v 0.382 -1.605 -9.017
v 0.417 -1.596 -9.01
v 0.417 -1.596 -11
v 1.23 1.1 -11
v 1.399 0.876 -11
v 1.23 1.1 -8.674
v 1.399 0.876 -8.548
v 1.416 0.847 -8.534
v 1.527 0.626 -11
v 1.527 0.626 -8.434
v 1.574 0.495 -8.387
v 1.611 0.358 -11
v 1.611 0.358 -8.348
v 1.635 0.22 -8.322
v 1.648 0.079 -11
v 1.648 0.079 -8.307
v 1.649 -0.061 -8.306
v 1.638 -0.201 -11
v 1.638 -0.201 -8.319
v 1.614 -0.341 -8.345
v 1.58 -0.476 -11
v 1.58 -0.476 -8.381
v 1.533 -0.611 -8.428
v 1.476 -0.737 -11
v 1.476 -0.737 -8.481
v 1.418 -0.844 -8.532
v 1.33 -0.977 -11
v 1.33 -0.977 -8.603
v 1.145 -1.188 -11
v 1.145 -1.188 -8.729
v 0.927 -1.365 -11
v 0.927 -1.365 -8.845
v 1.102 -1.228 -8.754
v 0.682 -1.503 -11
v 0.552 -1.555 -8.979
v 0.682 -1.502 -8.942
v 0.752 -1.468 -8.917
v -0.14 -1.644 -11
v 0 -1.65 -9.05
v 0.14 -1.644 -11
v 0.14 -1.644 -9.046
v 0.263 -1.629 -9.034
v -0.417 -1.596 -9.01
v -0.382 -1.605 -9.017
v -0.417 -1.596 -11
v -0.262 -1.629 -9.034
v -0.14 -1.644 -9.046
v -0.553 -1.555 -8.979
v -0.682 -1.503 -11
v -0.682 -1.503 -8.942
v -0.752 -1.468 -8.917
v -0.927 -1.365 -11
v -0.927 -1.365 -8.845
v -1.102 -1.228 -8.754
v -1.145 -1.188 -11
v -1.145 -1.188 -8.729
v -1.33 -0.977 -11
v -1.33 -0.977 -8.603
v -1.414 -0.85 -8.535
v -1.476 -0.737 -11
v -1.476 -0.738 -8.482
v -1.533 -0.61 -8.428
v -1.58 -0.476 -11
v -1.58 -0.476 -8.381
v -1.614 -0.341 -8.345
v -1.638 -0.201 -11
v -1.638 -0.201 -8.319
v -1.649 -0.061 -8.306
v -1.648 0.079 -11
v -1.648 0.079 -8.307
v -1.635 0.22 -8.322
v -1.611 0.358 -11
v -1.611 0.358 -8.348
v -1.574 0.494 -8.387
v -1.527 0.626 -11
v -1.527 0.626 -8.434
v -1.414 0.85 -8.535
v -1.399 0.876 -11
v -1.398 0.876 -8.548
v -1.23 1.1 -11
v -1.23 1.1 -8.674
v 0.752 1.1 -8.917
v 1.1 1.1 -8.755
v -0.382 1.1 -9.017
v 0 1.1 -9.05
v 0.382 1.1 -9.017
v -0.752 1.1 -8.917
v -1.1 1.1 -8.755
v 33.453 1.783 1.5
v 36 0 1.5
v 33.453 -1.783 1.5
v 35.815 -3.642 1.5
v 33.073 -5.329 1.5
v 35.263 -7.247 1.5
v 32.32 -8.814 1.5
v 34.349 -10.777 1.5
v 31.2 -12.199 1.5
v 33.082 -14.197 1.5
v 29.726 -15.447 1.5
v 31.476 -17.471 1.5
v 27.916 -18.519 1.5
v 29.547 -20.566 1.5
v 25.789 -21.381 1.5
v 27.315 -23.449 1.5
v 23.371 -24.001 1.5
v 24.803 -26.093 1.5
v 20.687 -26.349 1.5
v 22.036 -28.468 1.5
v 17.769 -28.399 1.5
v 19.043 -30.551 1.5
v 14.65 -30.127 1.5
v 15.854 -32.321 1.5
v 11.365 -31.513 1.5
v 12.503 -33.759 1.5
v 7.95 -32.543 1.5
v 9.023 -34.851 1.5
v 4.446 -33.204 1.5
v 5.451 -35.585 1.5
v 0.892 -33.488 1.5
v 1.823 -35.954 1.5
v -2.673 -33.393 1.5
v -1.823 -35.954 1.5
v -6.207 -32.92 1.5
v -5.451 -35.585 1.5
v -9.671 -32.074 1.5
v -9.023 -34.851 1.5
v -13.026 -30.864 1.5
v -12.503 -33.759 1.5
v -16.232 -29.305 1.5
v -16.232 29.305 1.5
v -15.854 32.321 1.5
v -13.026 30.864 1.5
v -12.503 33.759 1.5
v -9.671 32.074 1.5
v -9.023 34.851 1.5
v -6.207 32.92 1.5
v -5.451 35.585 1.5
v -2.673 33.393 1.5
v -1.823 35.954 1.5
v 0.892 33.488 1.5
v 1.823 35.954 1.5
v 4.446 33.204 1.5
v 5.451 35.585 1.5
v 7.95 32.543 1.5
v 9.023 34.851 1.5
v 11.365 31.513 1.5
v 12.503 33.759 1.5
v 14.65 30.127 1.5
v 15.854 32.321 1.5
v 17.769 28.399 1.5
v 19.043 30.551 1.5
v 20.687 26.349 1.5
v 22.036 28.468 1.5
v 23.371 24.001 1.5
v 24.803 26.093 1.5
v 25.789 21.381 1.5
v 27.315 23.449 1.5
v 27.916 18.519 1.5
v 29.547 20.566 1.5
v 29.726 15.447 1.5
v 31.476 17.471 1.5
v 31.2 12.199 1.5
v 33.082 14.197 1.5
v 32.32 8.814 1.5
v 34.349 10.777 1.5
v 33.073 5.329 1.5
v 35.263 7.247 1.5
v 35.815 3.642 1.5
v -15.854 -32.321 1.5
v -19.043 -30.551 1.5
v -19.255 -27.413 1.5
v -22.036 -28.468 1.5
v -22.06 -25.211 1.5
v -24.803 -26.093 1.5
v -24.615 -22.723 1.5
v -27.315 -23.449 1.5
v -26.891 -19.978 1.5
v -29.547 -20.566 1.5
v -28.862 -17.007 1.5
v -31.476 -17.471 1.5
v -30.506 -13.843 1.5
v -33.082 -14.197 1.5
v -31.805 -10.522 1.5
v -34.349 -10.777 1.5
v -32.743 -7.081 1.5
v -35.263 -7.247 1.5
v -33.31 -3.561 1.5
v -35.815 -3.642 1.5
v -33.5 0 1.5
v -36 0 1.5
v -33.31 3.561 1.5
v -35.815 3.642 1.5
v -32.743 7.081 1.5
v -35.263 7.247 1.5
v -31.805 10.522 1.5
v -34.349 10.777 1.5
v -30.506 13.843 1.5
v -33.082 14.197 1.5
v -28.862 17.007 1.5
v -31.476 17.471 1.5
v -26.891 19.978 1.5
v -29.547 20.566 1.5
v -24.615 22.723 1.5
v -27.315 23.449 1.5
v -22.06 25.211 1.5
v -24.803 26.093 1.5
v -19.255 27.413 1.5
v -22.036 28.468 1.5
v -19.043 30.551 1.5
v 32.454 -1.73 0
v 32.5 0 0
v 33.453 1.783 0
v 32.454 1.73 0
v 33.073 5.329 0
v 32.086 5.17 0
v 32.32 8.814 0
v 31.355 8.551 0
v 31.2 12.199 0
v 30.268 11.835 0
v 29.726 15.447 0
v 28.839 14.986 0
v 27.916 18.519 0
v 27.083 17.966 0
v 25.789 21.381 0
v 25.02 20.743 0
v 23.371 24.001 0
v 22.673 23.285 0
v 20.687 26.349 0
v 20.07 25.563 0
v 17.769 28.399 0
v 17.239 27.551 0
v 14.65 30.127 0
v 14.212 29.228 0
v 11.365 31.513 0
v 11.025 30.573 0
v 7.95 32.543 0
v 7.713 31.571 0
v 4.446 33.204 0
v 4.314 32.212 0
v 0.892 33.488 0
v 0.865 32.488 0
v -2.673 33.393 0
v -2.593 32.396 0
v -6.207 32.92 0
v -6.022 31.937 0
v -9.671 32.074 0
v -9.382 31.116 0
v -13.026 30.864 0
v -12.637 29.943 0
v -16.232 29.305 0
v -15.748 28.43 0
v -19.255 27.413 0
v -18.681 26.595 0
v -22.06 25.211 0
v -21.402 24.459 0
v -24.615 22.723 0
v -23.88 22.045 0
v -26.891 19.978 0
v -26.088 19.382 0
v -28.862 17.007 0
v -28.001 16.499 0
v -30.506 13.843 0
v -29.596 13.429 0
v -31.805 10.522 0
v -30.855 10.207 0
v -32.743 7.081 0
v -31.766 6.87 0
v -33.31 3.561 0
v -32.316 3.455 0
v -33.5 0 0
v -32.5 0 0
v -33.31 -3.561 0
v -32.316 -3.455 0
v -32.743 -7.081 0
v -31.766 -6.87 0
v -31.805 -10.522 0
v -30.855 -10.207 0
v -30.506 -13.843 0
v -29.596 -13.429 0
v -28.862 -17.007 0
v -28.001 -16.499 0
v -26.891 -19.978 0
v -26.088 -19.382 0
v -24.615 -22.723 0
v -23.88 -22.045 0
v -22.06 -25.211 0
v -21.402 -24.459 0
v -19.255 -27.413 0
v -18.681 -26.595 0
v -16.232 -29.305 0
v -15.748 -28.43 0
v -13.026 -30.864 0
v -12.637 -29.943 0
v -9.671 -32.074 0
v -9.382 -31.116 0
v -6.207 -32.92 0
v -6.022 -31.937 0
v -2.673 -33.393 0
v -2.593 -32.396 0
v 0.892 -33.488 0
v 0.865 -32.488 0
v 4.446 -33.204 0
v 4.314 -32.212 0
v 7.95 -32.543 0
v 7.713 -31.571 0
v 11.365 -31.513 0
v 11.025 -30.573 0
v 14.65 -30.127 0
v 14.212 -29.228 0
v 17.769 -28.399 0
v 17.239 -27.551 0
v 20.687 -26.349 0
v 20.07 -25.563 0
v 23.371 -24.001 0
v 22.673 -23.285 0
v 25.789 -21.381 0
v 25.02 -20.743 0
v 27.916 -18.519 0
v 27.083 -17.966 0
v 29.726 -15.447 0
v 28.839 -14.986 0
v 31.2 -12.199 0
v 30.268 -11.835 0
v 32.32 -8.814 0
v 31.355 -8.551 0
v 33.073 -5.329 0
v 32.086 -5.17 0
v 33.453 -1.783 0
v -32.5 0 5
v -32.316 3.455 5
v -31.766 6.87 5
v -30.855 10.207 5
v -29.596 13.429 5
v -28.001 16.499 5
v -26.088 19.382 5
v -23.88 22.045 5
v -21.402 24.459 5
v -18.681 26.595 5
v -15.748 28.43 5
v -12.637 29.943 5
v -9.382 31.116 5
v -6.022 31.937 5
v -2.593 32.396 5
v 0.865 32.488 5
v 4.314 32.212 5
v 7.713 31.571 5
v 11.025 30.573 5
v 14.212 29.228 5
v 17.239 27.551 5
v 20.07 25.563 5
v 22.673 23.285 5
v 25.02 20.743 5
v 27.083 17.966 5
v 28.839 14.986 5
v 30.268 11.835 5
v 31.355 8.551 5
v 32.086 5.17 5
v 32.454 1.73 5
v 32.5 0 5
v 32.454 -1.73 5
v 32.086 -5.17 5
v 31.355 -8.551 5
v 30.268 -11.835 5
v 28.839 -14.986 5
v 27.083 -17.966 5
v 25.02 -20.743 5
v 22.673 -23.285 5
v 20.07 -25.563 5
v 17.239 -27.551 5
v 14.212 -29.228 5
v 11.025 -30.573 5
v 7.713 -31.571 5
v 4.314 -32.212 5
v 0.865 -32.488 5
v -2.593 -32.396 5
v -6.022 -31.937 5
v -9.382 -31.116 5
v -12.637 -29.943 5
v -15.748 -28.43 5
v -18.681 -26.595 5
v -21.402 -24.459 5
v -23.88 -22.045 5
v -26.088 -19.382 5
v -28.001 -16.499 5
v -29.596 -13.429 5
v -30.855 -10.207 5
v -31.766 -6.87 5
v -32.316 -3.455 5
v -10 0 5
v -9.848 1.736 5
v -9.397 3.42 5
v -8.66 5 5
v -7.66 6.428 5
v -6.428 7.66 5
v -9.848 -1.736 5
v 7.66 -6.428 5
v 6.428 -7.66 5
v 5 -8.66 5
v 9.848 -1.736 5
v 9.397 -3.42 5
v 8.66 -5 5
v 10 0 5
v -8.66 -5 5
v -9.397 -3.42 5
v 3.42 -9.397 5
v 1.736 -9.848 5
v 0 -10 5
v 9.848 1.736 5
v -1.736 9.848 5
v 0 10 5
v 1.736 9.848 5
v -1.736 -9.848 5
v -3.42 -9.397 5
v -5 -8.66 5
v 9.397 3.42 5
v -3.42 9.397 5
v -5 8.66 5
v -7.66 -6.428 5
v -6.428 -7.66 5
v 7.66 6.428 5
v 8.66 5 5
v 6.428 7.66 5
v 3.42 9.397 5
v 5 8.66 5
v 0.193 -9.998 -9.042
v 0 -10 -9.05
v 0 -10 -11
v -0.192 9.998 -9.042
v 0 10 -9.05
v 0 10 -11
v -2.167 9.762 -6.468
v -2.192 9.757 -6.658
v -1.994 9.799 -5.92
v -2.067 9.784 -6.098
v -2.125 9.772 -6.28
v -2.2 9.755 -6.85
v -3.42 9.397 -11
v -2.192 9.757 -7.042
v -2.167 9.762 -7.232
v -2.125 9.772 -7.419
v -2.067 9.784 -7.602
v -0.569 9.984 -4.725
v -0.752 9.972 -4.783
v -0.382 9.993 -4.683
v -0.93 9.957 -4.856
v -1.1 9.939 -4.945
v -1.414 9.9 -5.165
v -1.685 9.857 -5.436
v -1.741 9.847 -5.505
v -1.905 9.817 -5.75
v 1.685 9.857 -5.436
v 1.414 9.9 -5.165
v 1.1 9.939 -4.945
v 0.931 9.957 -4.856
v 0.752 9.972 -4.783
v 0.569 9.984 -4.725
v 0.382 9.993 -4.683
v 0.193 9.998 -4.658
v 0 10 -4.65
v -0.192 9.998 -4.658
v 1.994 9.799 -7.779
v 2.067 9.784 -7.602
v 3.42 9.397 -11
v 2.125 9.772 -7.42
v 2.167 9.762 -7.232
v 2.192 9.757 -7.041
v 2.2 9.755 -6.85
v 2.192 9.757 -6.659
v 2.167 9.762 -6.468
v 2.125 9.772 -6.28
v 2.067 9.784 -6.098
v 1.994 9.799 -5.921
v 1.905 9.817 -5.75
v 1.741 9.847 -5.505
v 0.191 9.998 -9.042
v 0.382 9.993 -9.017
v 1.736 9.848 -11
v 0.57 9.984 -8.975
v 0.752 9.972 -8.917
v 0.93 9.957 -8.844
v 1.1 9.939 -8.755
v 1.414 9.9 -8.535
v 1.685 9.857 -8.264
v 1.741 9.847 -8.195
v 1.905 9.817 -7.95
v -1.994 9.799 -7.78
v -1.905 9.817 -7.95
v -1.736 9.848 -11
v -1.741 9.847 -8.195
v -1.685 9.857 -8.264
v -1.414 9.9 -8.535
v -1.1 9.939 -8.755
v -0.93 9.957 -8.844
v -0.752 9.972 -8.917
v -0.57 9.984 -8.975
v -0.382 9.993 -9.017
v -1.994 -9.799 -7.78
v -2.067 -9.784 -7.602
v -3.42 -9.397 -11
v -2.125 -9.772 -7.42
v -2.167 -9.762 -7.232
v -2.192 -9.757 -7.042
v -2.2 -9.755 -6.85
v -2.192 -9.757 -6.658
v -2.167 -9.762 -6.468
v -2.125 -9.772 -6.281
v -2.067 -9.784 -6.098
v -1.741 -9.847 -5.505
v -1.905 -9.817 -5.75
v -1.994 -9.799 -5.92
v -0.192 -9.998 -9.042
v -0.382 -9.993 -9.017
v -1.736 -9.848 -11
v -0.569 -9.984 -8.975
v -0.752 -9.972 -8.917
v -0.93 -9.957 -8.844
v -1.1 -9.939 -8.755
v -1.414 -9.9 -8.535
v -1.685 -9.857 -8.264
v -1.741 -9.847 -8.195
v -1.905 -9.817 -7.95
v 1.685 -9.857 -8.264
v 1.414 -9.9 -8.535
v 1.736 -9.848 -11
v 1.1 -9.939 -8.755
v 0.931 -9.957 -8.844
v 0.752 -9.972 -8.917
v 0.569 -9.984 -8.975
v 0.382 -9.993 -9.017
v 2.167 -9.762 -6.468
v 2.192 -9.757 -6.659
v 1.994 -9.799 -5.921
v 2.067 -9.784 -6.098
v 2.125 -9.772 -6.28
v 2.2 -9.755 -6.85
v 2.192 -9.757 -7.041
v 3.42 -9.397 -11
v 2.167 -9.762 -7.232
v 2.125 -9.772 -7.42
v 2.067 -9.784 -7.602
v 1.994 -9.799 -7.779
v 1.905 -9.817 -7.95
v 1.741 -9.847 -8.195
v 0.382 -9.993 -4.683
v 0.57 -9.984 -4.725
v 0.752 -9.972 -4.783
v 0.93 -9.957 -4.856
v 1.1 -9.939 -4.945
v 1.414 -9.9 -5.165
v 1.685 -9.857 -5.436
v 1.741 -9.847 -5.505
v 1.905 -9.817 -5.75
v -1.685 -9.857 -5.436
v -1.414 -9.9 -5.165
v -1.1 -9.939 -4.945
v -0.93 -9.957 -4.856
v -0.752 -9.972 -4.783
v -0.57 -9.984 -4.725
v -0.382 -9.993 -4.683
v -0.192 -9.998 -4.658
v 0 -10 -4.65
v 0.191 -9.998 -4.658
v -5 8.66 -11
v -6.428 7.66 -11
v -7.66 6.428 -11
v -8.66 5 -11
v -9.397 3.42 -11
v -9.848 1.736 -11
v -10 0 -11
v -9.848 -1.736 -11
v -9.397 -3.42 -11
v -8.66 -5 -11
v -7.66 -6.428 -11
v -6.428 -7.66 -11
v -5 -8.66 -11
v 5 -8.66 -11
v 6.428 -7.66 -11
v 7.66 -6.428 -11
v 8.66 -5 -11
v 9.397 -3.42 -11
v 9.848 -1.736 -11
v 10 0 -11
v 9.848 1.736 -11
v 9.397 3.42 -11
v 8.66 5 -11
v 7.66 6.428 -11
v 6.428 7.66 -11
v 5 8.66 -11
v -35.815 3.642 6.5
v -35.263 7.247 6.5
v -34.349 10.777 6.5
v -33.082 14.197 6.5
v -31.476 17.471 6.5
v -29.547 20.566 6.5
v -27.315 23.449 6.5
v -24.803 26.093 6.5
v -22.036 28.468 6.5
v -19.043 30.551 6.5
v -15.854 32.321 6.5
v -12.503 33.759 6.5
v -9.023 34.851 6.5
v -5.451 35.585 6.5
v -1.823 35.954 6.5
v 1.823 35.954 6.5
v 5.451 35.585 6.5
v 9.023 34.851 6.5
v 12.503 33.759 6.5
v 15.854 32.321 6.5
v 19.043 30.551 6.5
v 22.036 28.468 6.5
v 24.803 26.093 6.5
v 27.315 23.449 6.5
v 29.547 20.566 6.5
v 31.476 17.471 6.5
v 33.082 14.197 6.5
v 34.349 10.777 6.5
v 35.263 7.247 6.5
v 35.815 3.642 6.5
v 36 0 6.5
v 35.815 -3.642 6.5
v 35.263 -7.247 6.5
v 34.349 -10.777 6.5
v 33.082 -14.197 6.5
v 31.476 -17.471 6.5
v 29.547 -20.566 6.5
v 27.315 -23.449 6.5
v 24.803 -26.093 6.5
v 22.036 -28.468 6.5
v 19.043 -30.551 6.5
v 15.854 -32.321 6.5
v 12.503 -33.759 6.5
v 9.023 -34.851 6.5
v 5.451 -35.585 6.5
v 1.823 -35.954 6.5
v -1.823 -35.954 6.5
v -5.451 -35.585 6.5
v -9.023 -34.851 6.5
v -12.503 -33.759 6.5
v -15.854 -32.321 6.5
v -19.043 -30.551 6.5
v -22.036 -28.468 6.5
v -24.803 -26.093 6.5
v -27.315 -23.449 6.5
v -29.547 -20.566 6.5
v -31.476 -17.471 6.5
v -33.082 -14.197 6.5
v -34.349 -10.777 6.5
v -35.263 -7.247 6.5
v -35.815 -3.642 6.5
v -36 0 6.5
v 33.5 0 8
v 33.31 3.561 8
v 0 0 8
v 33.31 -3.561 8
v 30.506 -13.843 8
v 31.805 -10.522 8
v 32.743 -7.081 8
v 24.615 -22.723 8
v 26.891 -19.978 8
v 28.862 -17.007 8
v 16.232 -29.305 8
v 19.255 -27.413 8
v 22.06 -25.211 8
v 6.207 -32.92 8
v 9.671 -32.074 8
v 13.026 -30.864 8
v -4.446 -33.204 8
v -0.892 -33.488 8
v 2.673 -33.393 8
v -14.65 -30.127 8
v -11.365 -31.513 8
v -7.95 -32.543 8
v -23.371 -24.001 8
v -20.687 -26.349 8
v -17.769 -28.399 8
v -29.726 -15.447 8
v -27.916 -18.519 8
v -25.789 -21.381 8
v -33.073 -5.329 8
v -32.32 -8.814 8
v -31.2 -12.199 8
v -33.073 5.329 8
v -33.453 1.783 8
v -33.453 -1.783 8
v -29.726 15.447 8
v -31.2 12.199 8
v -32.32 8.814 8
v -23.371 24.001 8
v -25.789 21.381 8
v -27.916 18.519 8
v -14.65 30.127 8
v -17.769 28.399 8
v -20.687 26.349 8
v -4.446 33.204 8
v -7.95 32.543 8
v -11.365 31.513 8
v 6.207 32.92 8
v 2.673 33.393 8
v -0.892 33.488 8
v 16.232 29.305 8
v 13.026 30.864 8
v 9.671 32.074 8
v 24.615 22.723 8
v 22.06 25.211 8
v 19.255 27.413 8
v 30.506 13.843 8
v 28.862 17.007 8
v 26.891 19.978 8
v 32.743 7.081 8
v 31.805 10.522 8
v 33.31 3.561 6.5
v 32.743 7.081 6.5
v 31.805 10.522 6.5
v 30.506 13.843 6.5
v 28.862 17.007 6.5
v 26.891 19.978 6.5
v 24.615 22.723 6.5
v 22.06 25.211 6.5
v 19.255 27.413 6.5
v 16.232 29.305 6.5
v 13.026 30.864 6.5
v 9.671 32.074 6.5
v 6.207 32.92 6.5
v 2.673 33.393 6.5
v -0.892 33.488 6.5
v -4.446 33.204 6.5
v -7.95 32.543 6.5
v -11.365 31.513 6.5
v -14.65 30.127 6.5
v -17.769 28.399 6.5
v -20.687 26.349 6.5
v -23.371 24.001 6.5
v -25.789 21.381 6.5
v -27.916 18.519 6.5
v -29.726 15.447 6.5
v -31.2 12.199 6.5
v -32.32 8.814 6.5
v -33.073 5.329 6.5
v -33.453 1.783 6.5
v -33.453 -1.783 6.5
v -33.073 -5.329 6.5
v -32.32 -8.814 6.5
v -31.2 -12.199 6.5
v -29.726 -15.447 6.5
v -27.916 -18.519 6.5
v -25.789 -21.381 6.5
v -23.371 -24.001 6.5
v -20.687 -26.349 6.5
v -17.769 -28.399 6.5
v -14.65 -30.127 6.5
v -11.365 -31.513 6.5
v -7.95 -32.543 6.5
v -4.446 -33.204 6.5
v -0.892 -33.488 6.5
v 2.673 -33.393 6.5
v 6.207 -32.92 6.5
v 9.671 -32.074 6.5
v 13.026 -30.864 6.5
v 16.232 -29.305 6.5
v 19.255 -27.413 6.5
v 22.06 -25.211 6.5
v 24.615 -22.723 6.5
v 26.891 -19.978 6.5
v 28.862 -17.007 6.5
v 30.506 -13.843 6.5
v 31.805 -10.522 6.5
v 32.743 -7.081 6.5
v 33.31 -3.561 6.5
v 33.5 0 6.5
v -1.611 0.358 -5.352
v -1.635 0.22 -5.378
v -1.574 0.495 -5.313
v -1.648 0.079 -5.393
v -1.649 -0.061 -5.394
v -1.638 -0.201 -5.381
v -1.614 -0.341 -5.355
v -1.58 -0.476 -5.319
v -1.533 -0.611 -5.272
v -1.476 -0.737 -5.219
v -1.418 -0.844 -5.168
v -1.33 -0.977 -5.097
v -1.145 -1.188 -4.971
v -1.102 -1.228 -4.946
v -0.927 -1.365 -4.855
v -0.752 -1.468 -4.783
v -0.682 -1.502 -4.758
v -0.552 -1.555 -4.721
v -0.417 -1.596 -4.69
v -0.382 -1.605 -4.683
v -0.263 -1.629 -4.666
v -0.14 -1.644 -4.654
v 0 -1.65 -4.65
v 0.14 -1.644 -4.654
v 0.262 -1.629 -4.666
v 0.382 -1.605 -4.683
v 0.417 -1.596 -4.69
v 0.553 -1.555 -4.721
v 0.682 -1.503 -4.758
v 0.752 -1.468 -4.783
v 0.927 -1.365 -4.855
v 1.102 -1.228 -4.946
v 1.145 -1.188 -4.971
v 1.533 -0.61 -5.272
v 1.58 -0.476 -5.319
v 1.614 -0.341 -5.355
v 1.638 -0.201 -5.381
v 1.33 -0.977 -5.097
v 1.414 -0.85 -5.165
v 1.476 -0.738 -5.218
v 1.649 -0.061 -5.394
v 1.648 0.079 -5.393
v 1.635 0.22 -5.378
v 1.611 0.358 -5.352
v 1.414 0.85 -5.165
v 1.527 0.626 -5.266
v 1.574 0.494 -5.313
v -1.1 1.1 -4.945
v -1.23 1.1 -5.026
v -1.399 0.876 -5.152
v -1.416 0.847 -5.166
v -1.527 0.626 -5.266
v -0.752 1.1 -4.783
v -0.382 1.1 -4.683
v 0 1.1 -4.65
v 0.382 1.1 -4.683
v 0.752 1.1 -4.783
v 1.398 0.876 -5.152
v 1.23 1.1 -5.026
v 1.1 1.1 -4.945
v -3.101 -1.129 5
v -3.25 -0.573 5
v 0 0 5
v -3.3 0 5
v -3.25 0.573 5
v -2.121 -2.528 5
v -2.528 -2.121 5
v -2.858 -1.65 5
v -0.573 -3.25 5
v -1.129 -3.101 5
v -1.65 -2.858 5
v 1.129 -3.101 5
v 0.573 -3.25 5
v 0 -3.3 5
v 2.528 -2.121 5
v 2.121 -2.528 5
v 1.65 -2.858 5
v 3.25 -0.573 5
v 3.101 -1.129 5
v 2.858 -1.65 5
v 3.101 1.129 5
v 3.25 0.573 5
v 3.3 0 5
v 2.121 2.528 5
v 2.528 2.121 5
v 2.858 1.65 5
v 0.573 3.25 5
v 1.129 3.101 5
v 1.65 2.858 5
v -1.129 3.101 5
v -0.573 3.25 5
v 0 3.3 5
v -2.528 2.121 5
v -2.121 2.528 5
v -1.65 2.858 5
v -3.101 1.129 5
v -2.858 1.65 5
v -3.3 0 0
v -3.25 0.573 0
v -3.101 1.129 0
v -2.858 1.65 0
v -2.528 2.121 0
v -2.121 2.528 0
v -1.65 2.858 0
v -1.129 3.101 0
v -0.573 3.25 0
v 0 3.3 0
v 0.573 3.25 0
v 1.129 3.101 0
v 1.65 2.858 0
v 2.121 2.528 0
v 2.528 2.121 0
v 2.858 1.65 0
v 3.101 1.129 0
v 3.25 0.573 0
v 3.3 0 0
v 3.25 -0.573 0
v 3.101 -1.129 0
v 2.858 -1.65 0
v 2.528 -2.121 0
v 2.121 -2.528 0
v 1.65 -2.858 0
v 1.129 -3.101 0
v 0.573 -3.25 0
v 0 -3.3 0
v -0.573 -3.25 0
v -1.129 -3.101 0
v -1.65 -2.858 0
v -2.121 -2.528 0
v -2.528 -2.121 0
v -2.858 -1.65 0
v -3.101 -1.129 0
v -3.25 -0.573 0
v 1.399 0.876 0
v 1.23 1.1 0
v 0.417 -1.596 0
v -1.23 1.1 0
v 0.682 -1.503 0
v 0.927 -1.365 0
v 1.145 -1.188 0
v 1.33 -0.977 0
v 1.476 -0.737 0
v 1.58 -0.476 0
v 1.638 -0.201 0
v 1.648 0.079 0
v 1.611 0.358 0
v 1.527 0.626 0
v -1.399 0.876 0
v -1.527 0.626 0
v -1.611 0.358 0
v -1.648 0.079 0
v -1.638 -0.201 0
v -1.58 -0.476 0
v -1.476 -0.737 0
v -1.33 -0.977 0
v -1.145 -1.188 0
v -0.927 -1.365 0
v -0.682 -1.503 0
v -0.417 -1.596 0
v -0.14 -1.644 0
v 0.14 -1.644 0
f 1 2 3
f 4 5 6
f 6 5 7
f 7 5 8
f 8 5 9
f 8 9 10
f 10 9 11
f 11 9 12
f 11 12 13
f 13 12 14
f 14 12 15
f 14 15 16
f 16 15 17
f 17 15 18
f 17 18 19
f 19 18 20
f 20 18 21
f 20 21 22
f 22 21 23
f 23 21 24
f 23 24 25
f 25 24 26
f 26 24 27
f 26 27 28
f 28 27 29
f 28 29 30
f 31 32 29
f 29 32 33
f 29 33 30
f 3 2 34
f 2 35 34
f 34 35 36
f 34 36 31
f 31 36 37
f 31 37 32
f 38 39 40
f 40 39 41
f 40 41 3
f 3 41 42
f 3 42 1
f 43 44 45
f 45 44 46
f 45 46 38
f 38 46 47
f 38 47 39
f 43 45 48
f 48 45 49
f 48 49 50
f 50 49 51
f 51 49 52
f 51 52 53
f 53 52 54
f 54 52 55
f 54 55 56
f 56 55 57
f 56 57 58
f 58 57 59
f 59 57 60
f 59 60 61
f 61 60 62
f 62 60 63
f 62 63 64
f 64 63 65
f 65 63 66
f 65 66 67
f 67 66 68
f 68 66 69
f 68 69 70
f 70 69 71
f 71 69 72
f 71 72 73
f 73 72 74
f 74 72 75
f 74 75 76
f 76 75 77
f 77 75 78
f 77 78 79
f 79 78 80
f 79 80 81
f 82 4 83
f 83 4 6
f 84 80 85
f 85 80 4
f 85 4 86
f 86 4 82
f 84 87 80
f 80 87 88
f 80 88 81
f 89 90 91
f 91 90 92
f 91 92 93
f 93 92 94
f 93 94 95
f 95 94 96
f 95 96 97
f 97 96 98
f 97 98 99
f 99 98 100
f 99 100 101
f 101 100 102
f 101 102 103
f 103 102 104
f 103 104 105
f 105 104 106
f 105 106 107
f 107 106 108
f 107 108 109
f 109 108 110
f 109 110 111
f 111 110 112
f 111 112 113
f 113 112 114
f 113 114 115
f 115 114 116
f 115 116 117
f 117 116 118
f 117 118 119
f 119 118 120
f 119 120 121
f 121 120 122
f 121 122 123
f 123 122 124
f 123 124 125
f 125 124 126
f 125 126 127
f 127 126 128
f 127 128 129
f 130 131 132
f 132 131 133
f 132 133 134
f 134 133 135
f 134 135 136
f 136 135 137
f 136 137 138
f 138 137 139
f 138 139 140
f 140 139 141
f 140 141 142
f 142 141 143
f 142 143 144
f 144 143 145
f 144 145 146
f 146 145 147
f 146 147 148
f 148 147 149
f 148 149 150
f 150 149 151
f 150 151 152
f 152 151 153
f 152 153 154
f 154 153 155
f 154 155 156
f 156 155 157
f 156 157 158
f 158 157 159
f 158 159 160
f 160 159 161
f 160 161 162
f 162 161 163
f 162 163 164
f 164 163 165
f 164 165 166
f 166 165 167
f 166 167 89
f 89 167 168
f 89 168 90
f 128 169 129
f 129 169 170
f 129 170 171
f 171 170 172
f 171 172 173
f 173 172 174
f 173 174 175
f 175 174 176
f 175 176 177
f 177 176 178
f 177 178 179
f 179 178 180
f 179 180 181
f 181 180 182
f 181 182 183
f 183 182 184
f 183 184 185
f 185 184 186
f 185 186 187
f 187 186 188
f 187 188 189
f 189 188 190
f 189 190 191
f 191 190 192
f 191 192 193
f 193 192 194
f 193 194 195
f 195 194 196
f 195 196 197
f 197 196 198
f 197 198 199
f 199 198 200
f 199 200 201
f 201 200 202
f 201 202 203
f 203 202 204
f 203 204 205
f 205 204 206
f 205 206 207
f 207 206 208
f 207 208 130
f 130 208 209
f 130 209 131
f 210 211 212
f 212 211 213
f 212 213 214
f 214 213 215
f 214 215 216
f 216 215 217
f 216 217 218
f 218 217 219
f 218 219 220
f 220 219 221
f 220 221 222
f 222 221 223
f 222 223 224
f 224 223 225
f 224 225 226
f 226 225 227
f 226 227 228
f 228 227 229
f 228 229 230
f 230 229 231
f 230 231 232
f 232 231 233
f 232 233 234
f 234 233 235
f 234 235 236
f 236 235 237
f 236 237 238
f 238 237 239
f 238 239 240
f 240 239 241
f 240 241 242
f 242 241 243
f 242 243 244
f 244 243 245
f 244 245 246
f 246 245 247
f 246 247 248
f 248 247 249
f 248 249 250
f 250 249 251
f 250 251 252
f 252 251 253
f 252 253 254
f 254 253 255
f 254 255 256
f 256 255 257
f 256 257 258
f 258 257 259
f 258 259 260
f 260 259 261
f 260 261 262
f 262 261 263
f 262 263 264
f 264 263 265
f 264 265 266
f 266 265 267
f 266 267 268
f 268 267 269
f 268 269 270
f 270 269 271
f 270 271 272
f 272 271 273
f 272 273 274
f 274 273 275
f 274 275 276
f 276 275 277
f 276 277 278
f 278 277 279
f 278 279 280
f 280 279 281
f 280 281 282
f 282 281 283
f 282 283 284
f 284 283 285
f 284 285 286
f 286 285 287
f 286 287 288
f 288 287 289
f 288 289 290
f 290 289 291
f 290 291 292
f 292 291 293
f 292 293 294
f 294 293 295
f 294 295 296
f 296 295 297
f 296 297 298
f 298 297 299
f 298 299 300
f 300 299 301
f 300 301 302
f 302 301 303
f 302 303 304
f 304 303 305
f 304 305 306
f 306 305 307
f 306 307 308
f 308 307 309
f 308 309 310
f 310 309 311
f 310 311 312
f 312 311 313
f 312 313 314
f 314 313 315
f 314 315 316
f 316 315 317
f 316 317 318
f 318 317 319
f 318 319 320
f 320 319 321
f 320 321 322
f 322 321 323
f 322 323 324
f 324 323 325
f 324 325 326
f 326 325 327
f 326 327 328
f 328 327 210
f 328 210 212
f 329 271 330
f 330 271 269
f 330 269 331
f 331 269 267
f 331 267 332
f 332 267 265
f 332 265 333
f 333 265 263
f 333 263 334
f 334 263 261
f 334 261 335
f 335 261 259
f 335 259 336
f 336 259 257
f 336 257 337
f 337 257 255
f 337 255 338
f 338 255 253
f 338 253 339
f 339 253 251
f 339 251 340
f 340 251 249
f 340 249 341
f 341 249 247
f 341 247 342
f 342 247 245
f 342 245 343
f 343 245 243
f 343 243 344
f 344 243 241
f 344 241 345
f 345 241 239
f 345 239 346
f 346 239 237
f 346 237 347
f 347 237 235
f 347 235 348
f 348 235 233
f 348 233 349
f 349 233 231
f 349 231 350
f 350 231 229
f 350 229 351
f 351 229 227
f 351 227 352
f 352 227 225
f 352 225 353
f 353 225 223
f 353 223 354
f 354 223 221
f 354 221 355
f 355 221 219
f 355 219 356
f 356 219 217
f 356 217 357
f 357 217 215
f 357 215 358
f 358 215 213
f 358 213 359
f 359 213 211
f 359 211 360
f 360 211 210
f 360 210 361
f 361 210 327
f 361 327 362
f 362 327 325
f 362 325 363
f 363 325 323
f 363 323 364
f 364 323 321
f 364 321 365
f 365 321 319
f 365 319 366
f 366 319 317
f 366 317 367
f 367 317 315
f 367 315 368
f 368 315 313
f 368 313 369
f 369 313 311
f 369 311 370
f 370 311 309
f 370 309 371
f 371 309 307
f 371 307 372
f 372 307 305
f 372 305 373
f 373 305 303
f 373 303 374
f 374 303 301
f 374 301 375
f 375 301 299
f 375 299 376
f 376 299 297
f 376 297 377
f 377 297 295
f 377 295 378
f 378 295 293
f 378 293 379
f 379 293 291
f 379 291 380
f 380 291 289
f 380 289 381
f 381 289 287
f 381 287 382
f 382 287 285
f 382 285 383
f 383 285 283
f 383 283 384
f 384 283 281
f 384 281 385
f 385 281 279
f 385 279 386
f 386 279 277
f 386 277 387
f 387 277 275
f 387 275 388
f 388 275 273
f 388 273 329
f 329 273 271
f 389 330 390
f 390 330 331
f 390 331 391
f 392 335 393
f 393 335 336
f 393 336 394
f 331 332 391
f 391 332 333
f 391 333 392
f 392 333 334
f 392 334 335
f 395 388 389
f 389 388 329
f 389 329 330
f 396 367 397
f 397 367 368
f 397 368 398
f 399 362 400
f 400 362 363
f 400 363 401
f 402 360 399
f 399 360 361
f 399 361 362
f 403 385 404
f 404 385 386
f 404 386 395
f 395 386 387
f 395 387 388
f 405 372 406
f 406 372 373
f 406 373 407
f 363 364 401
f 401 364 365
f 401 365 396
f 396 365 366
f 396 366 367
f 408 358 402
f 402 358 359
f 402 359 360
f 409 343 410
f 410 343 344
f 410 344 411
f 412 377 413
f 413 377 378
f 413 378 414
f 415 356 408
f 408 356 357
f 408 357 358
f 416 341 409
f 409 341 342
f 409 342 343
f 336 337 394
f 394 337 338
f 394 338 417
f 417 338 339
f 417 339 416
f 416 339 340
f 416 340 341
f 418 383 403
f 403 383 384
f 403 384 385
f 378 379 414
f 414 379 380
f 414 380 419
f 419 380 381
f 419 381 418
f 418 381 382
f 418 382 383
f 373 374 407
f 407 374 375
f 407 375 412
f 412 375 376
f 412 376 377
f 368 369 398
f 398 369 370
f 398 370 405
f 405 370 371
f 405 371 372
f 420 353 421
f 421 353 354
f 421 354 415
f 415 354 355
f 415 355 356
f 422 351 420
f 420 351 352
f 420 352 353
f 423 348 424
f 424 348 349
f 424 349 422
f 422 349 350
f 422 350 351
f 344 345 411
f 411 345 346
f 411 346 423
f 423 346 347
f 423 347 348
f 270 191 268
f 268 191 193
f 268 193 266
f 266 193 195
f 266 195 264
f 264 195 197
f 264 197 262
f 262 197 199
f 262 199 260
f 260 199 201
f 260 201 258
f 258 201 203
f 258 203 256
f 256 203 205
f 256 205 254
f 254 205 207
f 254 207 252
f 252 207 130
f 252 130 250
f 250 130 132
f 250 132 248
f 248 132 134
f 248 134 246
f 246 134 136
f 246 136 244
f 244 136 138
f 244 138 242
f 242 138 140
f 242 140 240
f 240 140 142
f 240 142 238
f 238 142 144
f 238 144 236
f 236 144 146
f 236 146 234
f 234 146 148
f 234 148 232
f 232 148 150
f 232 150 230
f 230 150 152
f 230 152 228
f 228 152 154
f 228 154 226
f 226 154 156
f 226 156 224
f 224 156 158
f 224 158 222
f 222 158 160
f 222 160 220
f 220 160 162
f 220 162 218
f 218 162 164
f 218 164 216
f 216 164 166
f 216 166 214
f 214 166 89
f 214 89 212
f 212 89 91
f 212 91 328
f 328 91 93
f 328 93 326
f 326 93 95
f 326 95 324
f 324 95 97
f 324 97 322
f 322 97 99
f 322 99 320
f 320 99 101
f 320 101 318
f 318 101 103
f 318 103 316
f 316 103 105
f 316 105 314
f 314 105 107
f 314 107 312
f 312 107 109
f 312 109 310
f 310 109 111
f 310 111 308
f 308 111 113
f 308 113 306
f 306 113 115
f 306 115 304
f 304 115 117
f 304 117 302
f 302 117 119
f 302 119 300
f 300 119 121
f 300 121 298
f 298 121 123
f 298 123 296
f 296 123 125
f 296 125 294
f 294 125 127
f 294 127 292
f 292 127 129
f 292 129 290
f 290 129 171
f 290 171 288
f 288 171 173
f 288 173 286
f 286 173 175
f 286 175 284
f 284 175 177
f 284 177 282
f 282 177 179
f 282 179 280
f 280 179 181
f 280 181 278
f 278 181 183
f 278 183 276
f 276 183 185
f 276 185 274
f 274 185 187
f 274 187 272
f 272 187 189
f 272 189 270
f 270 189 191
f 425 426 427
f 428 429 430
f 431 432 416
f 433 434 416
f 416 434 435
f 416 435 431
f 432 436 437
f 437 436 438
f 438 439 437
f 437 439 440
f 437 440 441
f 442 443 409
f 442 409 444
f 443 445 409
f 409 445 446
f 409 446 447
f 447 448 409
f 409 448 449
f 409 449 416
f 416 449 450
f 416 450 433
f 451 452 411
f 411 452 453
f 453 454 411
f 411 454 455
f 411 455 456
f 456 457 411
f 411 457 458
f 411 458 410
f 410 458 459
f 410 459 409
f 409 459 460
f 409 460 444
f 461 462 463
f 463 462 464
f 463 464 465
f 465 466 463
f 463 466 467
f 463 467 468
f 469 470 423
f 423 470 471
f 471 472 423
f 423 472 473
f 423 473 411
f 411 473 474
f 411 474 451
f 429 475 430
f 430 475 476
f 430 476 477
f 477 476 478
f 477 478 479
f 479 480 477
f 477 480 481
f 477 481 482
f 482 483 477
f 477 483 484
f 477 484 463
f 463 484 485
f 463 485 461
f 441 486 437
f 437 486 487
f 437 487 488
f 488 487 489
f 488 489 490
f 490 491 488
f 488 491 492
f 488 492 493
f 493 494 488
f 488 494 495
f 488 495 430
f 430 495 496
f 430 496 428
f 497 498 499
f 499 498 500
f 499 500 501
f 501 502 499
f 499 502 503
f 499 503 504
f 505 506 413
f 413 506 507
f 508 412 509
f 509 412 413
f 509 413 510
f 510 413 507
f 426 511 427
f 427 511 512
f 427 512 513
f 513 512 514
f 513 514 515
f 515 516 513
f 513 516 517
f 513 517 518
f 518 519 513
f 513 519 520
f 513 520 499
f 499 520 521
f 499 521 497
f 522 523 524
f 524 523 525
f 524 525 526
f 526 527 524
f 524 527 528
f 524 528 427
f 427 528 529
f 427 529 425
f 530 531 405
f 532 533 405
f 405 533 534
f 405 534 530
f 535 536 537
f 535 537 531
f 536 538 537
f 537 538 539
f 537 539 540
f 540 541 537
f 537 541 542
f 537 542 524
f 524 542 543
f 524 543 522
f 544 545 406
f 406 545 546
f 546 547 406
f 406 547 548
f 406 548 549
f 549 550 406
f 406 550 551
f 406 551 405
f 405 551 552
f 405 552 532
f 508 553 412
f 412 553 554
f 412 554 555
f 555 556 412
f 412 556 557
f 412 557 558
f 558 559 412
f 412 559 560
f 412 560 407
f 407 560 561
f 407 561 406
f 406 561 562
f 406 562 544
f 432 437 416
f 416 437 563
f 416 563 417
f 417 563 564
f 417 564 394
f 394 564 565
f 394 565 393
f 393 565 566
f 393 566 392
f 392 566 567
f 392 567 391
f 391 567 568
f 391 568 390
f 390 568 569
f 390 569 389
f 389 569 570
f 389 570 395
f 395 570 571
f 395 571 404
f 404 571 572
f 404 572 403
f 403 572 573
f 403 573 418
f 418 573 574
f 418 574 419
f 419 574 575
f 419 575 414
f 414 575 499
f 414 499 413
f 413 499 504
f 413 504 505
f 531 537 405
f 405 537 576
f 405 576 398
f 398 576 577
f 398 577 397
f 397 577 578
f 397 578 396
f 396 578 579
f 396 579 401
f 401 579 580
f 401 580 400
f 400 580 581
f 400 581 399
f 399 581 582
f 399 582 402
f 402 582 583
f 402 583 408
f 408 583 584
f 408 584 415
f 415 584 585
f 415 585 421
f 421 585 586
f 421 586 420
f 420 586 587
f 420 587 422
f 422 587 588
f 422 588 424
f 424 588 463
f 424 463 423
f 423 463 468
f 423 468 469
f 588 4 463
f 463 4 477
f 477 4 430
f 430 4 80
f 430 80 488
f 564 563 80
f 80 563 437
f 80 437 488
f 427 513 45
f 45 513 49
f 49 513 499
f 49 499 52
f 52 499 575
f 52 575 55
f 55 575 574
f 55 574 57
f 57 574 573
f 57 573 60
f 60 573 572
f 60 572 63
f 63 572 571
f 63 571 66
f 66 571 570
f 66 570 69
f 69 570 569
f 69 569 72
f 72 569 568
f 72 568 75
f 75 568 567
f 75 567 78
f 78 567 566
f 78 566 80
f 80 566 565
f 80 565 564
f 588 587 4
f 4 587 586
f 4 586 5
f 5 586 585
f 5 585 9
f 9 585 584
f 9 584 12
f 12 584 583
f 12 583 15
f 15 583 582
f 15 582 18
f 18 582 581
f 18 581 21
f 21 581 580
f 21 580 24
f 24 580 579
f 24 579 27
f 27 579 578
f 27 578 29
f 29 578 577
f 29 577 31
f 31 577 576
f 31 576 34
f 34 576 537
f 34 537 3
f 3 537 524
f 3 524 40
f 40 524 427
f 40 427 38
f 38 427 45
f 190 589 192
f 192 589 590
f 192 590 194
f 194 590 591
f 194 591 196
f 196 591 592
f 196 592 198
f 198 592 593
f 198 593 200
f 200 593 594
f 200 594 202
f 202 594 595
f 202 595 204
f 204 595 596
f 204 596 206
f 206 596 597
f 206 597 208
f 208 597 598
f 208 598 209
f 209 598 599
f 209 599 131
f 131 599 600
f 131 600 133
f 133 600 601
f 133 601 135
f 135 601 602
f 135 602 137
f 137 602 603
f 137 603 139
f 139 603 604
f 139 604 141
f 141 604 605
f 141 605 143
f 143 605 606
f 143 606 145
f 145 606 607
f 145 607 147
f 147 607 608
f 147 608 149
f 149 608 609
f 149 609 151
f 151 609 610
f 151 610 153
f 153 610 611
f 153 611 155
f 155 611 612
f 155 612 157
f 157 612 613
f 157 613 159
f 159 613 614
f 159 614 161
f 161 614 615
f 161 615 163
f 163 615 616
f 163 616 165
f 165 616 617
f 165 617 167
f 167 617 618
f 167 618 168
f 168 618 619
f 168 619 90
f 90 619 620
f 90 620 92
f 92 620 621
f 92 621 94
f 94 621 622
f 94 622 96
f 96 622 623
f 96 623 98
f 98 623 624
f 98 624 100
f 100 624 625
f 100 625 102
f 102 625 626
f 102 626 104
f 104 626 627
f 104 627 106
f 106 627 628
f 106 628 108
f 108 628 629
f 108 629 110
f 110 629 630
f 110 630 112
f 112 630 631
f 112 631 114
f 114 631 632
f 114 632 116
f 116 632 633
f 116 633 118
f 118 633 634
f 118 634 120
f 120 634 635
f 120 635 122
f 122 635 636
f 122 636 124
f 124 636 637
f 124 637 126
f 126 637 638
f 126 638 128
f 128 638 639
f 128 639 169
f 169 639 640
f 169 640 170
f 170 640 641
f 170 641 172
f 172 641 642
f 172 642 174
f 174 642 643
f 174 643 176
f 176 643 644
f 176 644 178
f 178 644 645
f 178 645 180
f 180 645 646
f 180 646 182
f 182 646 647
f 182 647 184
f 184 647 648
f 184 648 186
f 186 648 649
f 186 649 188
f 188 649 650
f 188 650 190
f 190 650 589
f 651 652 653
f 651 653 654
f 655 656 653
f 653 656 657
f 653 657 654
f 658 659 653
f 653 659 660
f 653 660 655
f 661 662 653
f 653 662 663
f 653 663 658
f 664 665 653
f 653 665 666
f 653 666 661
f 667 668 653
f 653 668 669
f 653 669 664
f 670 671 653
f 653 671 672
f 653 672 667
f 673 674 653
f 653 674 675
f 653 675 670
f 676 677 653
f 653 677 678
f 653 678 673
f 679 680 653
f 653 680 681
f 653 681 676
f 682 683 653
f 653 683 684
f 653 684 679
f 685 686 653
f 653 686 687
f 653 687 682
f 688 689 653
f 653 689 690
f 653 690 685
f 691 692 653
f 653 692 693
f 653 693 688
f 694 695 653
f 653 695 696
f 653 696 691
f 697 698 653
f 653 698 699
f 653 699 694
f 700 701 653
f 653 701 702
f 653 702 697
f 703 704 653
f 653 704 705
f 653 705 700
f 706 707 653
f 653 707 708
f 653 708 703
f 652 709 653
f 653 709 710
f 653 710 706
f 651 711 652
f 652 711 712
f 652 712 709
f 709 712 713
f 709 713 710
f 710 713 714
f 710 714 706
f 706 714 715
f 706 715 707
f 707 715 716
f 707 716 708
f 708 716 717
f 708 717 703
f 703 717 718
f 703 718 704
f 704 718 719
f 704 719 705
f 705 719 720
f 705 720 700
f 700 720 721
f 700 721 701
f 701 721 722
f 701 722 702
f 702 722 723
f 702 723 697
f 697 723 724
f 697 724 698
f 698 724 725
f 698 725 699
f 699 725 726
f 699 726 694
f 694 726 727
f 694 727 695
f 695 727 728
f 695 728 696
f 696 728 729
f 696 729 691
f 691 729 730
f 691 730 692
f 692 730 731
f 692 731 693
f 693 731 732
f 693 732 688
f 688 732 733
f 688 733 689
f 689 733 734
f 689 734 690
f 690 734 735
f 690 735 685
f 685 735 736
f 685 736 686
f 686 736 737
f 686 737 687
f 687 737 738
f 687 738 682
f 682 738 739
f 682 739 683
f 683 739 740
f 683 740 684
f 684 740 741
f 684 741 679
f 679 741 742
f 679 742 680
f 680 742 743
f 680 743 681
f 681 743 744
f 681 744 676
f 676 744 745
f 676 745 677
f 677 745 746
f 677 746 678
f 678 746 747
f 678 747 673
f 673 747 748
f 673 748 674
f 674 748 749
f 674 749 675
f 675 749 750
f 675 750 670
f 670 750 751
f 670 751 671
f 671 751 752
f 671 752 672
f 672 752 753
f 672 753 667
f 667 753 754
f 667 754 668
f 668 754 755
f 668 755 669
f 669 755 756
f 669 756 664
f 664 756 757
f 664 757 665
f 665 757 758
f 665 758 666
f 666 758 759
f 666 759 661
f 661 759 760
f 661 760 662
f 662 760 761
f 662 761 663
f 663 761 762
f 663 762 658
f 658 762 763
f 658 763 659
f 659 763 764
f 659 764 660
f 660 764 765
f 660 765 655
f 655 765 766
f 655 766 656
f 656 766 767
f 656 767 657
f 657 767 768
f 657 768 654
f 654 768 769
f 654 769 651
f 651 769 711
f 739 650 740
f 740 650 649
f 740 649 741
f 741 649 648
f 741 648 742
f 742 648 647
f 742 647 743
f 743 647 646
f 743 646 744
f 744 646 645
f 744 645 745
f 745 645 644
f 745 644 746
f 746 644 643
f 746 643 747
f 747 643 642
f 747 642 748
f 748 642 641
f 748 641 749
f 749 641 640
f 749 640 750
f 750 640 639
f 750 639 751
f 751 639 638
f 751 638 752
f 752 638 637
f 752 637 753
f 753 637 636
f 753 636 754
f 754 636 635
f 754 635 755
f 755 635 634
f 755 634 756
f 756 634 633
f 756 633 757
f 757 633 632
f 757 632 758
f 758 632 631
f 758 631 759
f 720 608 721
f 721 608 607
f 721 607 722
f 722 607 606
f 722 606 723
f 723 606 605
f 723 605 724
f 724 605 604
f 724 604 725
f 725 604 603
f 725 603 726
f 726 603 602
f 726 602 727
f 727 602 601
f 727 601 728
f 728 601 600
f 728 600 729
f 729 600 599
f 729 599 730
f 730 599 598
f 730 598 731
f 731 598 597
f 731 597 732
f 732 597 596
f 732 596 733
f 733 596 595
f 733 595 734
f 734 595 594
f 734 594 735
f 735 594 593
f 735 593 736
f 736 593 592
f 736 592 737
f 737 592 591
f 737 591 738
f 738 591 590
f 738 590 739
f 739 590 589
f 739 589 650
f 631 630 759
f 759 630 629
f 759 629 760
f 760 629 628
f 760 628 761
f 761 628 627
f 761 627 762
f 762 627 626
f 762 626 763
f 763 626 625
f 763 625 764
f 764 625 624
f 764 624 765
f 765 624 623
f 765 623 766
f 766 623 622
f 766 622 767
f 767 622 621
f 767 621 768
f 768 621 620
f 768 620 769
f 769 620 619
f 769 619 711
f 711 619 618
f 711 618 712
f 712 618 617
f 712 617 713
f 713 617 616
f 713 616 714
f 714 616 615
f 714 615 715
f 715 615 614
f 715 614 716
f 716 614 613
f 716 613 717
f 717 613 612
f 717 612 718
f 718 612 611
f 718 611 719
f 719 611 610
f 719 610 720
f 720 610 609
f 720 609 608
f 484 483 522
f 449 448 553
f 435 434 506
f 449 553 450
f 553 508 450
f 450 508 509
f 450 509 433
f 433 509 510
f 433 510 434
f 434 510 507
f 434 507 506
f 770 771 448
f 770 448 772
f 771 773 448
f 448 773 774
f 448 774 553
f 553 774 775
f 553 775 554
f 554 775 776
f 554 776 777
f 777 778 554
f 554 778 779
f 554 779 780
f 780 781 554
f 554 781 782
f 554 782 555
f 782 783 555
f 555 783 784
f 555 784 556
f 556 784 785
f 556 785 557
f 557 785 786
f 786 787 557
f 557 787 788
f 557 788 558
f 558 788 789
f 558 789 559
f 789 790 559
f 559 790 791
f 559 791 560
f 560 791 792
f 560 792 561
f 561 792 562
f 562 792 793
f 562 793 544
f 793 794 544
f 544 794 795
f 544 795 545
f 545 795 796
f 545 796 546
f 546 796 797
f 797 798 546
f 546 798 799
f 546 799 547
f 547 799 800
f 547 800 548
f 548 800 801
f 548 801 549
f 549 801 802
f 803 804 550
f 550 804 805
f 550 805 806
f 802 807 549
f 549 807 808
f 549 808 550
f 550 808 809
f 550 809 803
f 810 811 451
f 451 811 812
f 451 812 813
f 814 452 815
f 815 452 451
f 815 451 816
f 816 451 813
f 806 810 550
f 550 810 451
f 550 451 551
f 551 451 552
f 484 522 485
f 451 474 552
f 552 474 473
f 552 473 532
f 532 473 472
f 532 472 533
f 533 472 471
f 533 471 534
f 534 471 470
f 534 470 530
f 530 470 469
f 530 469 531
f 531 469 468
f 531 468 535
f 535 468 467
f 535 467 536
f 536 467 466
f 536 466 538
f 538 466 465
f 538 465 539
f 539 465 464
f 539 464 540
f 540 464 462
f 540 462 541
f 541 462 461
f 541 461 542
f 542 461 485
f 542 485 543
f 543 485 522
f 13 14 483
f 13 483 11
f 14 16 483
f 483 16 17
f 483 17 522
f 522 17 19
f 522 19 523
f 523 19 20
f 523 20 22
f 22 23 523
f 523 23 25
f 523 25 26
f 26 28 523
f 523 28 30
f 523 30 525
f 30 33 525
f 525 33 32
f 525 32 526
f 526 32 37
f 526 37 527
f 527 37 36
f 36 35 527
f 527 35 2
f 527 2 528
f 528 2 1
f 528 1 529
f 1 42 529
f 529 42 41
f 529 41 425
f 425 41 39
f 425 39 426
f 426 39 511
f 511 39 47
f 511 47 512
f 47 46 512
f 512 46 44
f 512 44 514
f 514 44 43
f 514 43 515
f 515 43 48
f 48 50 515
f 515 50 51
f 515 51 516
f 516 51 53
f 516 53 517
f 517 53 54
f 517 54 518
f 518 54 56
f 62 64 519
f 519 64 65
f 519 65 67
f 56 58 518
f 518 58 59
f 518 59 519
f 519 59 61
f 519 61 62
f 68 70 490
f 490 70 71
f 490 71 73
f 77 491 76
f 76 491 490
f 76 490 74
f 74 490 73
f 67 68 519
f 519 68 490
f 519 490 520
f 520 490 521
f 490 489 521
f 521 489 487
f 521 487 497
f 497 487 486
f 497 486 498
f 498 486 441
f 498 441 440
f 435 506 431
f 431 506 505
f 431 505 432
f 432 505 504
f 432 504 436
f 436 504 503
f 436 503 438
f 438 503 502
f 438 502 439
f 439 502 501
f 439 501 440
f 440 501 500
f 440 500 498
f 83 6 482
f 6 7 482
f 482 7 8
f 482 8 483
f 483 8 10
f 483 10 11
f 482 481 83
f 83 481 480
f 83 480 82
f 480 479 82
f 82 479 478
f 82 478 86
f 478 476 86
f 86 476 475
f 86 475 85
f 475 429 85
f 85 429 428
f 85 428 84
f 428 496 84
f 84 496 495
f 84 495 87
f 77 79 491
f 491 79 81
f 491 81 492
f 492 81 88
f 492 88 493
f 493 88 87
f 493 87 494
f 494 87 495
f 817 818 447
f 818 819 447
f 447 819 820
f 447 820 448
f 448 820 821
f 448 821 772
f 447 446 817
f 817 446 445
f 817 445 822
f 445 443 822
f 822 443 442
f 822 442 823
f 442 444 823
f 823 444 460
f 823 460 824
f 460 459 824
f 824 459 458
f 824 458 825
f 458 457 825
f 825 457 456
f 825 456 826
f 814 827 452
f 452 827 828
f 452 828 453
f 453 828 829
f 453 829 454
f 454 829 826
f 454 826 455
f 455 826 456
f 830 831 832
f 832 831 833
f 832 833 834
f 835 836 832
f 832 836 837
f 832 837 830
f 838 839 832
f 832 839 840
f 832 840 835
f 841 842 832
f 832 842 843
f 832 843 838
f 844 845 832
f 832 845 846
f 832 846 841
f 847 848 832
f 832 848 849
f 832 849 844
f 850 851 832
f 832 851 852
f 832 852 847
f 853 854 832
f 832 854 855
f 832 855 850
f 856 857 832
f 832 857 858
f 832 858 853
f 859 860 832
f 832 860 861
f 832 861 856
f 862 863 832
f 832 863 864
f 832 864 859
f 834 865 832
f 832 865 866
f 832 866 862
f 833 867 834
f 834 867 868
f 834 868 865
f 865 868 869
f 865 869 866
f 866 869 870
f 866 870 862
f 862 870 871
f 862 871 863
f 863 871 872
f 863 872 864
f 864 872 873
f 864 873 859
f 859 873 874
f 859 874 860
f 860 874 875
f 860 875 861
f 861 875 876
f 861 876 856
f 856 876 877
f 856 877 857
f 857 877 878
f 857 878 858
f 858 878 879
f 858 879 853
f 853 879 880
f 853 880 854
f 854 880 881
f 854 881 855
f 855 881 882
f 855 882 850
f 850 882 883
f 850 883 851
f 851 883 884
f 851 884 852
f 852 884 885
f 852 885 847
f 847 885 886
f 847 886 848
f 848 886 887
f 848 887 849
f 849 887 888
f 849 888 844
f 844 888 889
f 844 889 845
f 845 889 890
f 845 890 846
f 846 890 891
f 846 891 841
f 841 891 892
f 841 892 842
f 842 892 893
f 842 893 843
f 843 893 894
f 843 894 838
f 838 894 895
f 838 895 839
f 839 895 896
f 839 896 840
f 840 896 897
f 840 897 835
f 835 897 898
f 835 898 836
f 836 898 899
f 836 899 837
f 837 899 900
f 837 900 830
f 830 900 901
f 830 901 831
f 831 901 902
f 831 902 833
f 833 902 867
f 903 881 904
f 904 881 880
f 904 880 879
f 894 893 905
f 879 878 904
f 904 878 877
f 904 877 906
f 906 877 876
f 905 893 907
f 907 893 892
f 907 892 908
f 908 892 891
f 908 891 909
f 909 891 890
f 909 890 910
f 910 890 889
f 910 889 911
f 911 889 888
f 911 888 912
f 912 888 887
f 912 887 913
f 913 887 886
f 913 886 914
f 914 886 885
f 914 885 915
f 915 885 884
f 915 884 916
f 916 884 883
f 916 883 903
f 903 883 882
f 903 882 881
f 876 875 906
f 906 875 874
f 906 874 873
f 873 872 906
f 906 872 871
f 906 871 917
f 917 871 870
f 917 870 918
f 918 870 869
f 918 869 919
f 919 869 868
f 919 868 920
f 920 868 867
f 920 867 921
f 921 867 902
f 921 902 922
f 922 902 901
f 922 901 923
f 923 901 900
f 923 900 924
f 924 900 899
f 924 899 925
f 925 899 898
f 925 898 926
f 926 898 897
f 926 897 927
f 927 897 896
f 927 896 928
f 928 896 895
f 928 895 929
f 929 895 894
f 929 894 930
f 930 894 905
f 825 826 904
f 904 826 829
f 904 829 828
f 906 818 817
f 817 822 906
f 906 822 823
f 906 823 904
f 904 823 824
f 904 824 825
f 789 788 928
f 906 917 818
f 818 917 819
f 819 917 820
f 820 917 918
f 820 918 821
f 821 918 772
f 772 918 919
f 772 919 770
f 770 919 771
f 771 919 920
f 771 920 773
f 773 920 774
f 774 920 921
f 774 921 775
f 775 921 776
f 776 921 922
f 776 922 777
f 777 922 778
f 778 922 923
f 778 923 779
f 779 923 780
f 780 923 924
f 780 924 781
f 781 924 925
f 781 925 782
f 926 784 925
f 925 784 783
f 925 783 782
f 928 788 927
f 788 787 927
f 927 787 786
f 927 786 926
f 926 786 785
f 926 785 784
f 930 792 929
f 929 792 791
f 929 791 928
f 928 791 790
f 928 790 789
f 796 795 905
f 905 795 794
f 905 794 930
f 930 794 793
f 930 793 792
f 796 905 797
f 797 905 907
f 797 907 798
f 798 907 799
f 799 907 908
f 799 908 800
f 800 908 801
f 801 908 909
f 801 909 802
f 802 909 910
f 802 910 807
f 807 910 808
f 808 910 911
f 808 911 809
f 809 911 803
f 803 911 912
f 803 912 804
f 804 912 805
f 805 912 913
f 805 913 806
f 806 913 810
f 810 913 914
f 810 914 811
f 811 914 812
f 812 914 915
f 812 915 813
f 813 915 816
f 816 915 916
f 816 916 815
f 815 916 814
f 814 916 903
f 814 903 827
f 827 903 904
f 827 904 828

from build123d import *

# Parameters (mm, degrees)
ESBO_O1_R                     = 35
ESBO_O1_R_2                   = 32.5
RESSALTO_EXTRUS_O1_DEPTH      = 8
RESSALTO_EXTRUS_O2_START      = -3
ESBO_O2_R                     = 32.5
RESSALTO_EXTRUS_O2_DEPTH      = 3
ESBO_O3_R                     = 2.5
CORTE_EXTRUS_O1_DEPTH         = 3
RESSALTO_EXTRUS_O3_DEPTH      = 5
RESSALTO_EXTRUS_O3_DEPTH_BACK = 3
ESBO_O4_R                     = 37
ESBO_O4_R_2                   = 35
ESBO_O5_W                     = 1.8
ESBO_O5_H                     = 3
ESBO_O6_R                     = 12.55
RESSALTO_EXTRUS_O4_DEPTH      = 5
CORTE_EXTRUS_O2_DEPTH         = 53.933921071
CORTE_EXTRUS_O2_DEPTH_BACK    = 53.933921071
ESBO_O7_R                     = 7.55
RESSALTO_EXTRUS_O5_START      = -8
ESBO_O8_R                     = 37
ESBO_O8_R_2                   = 32.5
RESSALTO_EXTRUS_O5_DEPTH      = 8
ESBO_O9_R                     = 37
ESBO_O9_R_2                   = 33.5
CORTE_EXTRUS_O8_DEPTH         = 1.5
CORTE_EXTRUS_O9_START         = -1.5
ESBO_O12_R                    = 37
ESBO_O12_R_2                  = 33.5
CORTE_EXTRUS_O9_DEPTH         = 1.5
CORTE_EXTRUS_O10_START        = -10
ESBO_O13_R                    = 37
ESBO_O13_R_2                  = 36
CORTE_EXTRUS_O10_DEPTH        = 10
ESBO_O14_R                    = 37
ESBO_O14_R_2                  = 36
RESSALTO_EXTRUS_O6_DEPTH      = 5
ESBO_O15_R                    = 12.55
CORTE_EXTRUS_O11_DEPTH        = 53.933921071
ESBO_O16_R                    = 12.55
RESSALTO_EXTRUS_O7_DEPTH      = 3
ESBO_O17_R                    = 10
RESSALTO_EXTRUS_O8_DEPTH      = 16
ESBO_O18_R                    = 3.3
CORTE_EXTRUS_O12_DEPTH        = 16
ESBO_O23_R                    = 37
ESBO_O23_R_2                  = 36
CORTE_EXTRUS_O15_DEPTH        = 54.798234172
ESBO_O24_R                    = 3.3
RESSALTO_EXTRUS_O9_DEPTH      = 11
CORTE_EXTRUS_O14_DEPTH        = 56.88103435
CORTE_EXTRUS_O14_DEPTH_BACK   = 56.88103435
ESBO_O21_R                    = 2.2


with BuildPart() as part:
    # Esboço1 → Ressalto-extrusão1 (new body)
    with BuildSketch(Plane.XY):
        Circle(ESBO_O1_R)
        Circle(ESBO_O1_R_2, mode=Mode.SUBTRACT)
    extrude(amount=RESSALTO_EXTRUS_O1_DEPTH)

    # Esboço2 → Ressalto-extrusão2 (add)
    with BuildSketch(Plane.XY.offset(8).offset(RESSALTO_EXTRUS_O2_START)):
        Circle(ESBO_O2_R)
    extrude(amount=RESSALTO_EXTRUS_O2_DEPTH)

    # Esboço3 → Corte-extrusão1 (cut)
    with BuildSketch(Plane.XY.offset(8)):
        Circle(ESBO_O3_R)
    extrude(amount=-CORTE_EXTRUS_O1_DEPTH, mode=Mode.SUBTRACT)

    # Esboço4 → Ressalto-extrusão3 (add, two sides: drawn at the far end of the back side and taken through both)
    with BuildSketch(Plane(origin=(0, 0, 5), x_dir=(-1, 0, 0), z_dir=(0, 0, -1)).offset(-RESSALTO_EXTRUS_O3_DEPTH_BACK)):
        Circle(ESBO_O4_R)
        Circle(ESBO_O4_R_2, mode=Mode.SUBTRACT)
    extrude(amount=RESSALTO_EXTRUS_O3_DEPTH + RESSALTO_EXTRUS_O3_DEPTH_BACK)

    # Esboço5 → Corte-Revolução1 (revolve, cut)
    with BuildSketch(Plane(origin=(0, 0, 0), x_dir=(1, 0, 0), z_dir=(0, 1, 0))):
        with Locations((-36.1, -2.5)):
            Rectangle(ESBO_O5_W, ESBO_O5_H)
        with Locations((-36.1, -5.5)):
            Rectangle(ESBO_O5_W, ESBO_O5_H)
    revolve(axis=Axis((0, 0, 8), (0, 0, -1)), mode=Mode.SUBTRACT)

    # Esboço6 → Ressalto-extrusão4 (add)
    with BuildSketch(Plane(origin=(0, 0, 5), x_dir=(-1, 0, 0), z_dir=(0, 0, -1))):
        with Locations(Location((0, 0, 0), (0, 0, 180))):
            Circle(ESBO_O6_R)
    extrude(amount=RESSALTO_EXTRUS_O4_DEPTH)

    # Esboço7 → Corte-extrusão2 (cut, two sides: drawn at the far end of the back side and taken through both)
    with BuildSketch(Plane(origin=(0, 0, 0), x_dir=(-1, 0, 0), z_dir=(0, 0, -1)).offset(-CORTE_EXTRUS_O2_DEPTH_BACK)):
        Circle(ESBO_O7_R)
    extrude(amount=CORTE_EXTRUS_O2_DEPTH + CORTE_EXTRUS_O2_DEPTH_BACK, mode=Mode.SUBTRACT)

    # Esboço8 → Ressalto-extrusão5 (add)
    with BuildSketch(Plane.XY.offset(8).offset(RESSALTO_EXTRUS_O5_START)):
        with Locations(Location((0, 0, 0), (0, 0, 180))):
            Circle(ESBO_O8_R)
        Circle(ESBO_O8_R_2, mode=Mode.SUBTRACT)
    extrude(amount=RESSALTO_EXTRUS_O5_DEPTH)

    # Esboço9 → Corte-extrusão8 (cut)
    with BuildSketch(Plane.XY.offset(8)):
        with Locations(Location((0, 0, 0), (0, 0, 180))):
            Circle(ESBO_O9_R)
        Circle(ESBO_O9_R_2, mode=Mode.SUBTRACT)
    extrude(amount=-CORTE_EXTRUS_O8_DEPTH, mode=Mode.SUBTRACT)

    # Esboço12 → Corte-extrusão9 (cut)
    with BuildSketch(Plane(origin=(0, 0, 0), x_dir=(-1, 0, 0), z_dir=(0, 0, -1)).offset(CORTE_EXTRUS_O9_START)):
        Circle(ESBO_O12_R)
        with Locations(Location((0, 0, 0), (0, 0, 180))):
            Circle(ESBO_O12_R_2, mode=Mode.SUBTRACT)
    extrude(amount=CORTE_EXTRUS_O9_DEPTH, mode=Mode.SUBTRACT)

    # Esboço13 → Corte-extrusão10 (cut)
    with BuildSketch(Plane(origin=(0, 0, 1.5), x_dir=(-1, 0, 0), z_dir=(0, 0, -1)).offset(CORTE_EXTRUS_O10_START)):
        Circle(ESBO_O13_R)
        Circle(ESBO_O13_R_2, mode=Mode.SUBTRACT)
    extrude(amount=CORTE_EXTRUS_O10_DEPTH, mode=Mode.SUBTRACT)

    # Esboço14 → Ressalto-extrusão6 (add)
    with BuildSketch(Plane.XY.offset(6.5)):
        Circle(ESBO_O14_R)
        Circle(ESBO_O14_R_2, mode=Mode.SUBTRACT)
    extrude(amount=-RESSALTO_EXTRUS_O6_DEPTH)

    # Esboço15 → Corte-extrusão11 (cut, through all)
    with BuildSketch(Plane(origin=(0, 0, 0), x_dir=(-1, 0, 0), z_dir=(0, 0, -1))):
        Circle(ESBO_O15_R)
    extrude(amount=-CORTE_EXTRUS_O11_DEPTH, mode=Mode.SUBTRACT)

    # Esboço16 → Ressalto-extrusão7 (add, through all)
    with BuildSketch(Plane(origin=(0, 0, 5), x_dir=(-1, 0, 0), z_dir=(0, 0, -1))):
        Circle(ESBO_O16_R)
    extrude(amount=-RESSALTO_EXTRUS_O7_DEPTH)

    # Esboço17 → Ressalto-extrusão8 (add)
    with BuildSketch(Plane(origin=(0, 0, 5), x_dir=(-1, 0, 0), z_dir=(0, 0, -1))):
        with Locations(Location((0, 0, 0), (0, 0, 180))):
            Circle(ESBO_O17_R)
    extrude(amount=RESSALTO_EXTRUS_O8_DEPTH)

    # Esboço18 → Corte-extrusão12 (cut)
    with BuildSketch(Plane(origin=(0, 0, -11), x_dir=(-1, 0, 0), z_dir=(0, 0, -1))):
        Circle(ESBO_O18_R)
    extrude(amount=-CORTE_EXTRUS_O12_DEPTH, mode=Mode.SUBTRACT)

    # Esboço23 → Corte-extrusão15 (cut, through all)
    with BuildSketch(Plane(origin=(0, 0, 1.5), x_dir=(-1, 0, 0), z_dir=(0, 0, -1))):
        Circle(ESBO_O23_R)
        Circle(ESBO_O23_R_2, mode=Mode.SUBTRACT)
    extrude(amount=-CORTE_EXTRUS_O15_DEPTH, mode=Mode.SUBTRACT)

    # Esboço24 → Ressalto-extrusão9 (add)
    with BuildSketch(Plane(origin=(0, 0, -11), x_dir=(-1, 0, 0), z_dir=(0, 0, -1))):
        Circle(ESBO_O24_R)
        with BuildLine():
            Line((-1.229837388, 1.1), (1.229837388, 1.1))
            ThreePointArc((1.229837388, 1.1), (0, -1.65), (-1.229837388, 1.1))
        make_face(mode=Mode.SUBTRACT)
    extrude(amount=-RESSALTO_EXTRUS_O9_DEPTH)

    # Esboço21 → Corte-extrusão14 (cut, two sides: drawn at the far end of the back side and taken through both)
    with BuildSketch(Plane(origin=(0, 5.3, 0), x_dir=(1, 0, 0), z_dir=(0, 1, 0)).offset(-CORTE_EXTRUS_O14_DEPTH_BACK)):
        with Locations(Location((0, 6.85, 0), (0, 0, 180))):
            Circle(ESBO_O21_R)
    extrude(amount=CORTE_EXTRUS_O14_DEPTH + CORTE_EXTRUS_O14_DEPTH_BACK, mode=Mode.SUBTRACT)


solid = part.part
